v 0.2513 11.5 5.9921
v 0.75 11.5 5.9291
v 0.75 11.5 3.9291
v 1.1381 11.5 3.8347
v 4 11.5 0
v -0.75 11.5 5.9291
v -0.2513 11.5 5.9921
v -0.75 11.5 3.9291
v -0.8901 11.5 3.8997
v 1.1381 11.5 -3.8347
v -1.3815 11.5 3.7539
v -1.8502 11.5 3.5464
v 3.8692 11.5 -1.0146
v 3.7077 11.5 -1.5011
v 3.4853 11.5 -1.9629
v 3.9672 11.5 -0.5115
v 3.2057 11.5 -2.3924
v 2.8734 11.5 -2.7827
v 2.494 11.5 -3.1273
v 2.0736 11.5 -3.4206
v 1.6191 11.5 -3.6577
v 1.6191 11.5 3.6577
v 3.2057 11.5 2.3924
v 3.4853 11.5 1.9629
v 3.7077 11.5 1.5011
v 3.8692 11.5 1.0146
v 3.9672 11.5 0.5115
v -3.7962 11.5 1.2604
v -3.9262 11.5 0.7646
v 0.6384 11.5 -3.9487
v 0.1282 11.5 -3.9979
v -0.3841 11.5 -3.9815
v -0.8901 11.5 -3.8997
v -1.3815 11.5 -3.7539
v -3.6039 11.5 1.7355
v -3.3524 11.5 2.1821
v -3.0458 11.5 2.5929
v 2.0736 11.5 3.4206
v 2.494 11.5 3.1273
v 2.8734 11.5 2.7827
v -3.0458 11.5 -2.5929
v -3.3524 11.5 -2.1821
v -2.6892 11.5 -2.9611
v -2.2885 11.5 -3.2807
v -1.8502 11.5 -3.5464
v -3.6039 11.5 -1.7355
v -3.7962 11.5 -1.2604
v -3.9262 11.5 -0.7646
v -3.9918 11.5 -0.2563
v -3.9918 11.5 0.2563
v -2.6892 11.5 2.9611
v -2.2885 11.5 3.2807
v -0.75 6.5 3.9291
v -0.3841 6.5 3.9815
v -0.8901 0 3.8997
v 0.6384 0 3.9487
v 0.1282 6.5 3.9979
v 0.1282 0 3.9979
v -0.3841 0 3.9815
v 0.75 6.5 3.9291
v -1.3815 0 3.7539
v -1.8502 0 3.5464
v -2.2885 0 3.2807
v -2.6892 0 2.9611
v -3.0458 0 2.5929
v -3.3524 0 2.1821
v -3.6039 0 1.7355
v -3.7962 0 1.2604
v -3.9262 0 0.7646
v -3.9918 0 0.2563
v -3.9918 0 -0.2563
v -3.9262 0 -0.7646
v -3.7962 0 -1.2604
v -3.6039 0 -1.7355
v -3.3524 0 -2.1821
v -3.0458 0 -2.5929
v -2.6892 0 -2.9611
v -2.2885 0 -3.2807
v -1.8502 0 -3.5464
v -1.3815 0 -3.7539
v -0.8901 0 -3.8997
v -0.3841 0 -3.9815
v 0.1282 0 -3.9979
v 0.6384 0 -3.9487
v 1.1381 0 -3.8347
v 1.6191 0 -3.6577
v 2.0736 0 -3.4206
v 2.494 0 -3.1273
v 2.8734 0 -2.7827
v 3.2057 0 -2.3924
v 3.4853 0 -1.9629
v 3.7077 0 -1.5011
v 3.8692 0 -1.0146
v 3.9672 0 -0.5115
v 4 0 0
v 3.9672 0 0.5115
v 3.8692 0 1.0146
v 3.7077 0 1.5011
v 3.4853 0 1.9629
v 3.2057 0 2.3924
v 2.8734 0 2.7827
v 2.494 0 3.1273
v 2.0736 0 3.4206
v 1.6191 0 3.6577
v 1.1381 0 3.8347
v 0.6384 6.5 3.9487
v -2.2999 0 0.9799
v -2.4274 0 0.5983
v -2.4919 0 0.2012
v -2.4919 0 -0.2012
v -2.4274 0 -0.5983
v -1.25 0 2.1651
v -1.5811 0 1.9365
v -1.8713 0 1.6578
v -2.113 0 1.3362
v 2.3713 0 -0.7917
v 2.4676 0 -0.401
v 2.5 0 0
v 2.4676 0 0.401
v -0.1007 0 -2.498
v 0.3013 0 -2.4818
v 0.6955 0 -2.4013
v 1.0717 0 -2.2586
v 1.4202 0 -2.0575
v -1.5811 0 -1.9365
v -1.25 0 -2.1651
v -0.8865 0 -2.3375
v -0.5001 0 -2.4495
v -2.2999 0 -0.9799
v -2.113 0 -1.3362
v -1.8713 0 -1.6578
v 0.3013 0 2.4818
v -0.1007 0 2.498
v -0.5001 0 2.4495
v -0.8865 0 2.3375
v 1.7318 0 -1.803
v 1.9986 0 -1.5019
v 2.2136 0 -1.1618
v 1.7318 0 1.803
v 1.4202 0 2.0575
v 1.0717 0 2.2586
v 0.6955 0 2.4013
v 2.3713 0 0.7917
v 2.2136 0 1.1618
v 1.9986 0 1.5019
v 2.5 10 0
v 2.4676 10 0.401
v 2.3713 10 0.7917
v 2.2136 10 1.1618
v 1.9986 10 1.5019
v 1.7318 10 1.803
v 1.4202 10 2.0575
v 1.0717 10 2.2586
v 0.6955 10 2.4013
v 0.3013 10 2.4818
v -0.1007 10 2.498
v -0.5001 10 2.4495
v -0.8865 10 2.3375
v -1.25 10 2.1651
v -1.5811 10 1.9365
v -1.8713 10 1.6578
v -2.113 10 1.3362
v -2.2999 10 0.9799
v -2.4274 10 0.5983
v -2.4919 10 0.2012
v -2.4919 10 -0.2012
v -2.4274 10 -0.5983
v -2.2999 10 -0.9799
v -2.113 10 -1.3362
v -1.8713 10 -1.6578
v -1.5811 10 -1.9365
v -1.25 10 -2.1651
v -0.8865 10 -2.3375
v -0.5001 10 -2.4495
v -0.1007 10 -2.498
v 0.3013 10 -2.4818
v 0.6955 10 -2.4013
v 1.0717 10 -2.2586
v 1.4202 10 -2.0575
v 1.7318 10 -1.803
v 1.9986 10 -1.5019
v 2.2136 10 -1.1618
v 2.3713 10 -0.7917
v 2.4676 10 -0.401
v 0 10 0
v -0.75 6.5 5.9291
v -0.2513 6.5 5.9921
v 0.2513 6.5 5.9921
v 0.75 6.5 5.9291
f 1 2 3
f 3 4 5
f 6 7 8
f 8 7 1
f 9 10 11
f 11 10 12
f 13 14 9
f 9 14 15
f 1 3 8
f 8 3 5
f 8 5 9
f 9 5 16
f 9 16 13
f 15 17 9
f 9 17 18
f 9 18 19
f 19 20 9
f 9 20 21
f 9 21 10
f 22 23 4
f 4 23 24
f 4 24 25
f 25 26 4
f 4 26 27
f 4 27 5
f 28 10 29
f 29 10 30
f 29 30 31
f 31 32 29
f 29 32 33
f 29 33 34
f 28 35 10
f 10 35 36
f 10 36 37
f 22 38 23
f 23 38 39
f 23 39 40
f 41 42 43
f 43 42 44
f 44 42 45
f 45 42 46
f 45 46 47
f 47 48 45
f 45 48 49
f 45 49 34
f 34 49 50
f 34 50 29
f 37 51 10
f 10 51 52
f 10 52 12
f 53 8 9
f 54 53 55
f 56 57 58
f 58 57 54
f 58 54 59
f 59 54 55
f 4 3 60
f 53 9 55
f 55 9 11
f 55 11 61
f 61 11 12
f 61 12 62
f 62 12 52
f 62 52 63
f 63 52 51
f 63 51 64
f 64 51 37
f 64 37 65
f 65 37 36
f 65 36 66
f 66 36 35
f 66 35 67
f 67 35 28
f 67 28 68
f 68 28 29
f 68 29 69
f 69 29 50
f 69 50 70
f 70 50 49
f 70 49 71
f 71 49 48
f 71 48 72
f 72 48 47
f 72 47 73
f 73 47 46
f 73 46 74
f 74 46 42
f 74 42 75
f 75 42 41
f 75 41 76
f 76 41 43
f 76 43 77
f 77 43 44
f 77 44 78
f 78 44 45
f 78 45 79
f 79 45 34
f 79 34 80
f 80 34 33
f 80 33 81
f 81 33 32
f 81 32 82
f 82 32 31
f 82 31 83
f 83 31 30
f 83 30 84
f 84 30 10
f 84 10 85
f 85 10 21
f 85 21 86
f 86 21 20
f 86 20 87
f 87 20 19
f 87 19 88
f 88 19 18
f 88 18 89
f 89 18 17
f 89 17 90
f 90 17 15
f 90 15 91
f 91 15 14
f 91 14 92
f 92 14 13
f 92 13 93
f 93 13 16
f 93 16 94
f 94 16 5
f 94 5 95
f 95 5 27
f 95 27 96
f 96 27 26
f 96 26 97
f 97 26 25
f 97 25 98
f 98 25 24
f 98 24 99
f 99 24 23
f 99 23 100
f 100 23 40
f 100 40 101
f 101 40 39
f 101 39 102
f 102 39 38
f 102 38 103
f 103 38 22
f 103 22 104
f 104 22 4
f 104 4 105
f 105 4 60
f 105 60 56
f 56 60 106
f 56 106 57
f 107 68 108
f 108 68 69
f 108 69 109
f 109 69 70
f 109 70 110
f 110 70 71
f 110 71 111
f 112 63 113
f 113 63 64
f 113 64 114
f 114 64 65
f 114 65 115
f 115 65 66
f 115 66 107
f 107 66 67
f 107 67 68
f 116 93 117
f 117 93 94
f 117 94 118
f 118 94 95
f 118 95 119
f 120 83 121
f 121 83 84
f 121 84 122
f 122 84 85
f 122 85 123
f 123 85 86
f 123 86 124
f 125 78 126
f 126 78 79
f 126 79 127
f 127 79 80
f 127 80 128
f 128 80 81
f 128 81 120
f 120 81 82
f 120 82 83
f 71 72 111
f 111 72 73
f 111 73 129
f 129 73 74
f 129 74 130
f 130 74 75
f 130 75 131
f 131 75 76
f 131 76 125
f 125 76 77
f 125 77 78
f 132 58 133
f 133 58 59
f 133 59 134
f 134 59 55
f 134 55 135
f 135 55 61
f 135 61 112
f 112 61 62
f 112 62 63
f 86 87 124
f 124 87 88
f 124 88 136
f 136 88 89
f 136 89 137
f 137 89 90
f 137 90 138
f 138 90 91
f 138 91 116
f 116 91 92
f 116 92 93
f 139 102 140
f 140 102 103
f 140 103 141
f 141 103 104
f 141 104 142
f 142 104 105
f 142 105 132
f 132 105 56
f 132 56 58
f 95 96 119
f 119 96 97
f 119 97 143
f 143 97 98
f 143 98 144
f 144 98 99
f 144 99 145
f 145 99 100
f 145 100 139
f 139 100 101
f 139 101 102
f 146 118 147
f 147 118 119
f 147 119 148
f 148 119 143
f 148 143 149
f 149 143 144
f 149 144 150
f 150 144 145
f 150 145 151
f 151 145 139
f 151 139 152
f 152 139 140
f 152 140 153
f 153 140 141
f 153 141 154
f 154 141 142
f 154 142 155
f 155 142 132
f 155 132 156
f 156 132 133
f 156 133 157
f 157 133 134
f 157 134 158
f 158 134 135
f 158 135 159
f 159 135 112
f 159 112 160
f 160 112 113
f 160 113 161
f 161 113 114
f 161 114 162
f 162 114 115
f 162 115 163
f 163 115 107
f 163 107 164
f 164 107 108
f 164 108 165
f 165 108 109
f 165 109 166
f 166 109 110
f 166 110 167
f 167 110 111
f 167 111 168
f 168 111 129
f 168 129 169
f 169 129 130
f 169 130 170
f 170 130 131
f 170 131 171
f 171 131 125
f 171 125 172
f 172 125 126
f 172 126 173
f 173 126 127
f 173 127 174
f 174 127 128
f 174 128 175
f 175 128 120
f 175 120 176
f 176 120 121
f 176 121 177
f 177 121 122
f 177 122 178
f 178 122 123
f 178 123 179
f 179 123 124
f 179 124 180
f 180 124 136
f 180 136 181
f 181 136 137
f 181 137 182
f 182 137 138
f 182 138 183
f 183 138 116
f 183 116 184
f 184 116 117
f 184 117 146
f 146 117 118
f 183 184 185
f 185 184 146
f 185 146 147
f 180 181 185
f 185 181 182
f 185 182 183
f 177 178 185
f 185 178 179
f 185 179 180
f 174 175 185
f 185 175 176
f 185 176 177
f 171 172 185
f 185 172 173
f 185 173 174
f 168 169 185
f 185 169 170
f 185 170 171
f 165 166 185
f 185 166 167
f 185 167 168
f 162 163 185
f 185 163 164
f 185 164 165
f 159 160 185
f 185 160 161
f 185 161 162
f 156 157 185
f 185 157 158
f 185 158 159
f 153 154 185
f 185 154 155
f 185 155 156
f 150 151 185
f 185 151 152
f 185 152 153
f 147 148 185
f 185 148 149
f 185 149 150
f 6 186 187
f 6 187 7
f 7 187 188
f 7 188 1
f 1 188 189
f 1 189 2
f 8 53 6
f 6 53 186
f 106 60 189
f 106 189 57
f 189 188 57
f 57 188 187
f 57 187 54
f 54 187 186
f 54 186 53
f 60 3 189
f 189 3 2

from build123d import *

# Parameters (mm, degrees)
BOSS_EXTRU_1_REACH        = 16.816
BOSS_EXTRU_1_START_RADIUS = 4
BOSS_EXTRU_1_END_RADIUS   = 4
ESQUISSE2_W               = 1.5
ESQUISSE2_H               = 5


with BuildPart() as part:
    # Esquisse1 → Révolution1 (revolve)
    with BuildSketch(Plane.XY):
        Polygon((2.5, 0), (2.5, 10), (0, 10), (0, 11.5), (4, 11.5), (4, 0), align=None)
    revolve(axis=Axis((0, 0, 0), (0, 1, 0)))

    # Boss.-Extru.1: from a cylinder face, 16.816 long prism both ways, kept between that surface and its translate by the depth
    boss_extru_1_start = Plane(origin=(0, 9, 0), z_dir=(0, -1, 0)) * Cylinder(BOSS_EXTRU_1_START_RADIUS, 42.632, mode=Mode.PRIVATE)
    boss_extru_1_end = Plane(origin=(0, 9, 2), z_dir=(0, -1, 0)) * Cylinder(BOSS_EXTRU_1_END_RADIUS, 42.632, mode=Mode.PRIVATE)
    # Esquisse2 → Boss.-Extru.1 (add, from a surface)
    with BuildSketch(Plane.XY, mode=Mode.PRIVATE) as boss_extru_1_sk1:
        with Locations((0, 9)):
            Rectangle(ESQUISSE2_W, ESQUISSE2_H)
    boss_extru_1_tool1 = extrude(boss_extru_1_sk1.sketch, amount=BOSS_EXTRU_1_REACH, both=True, mode=Mode.PRIVATE)
    add(((boss_extru_1_tool1 - boss_extru_1_start) & boss_extru_1_end).solids().sort_by_distance((0, 9, 4.929058))[0])


solid = part.part
